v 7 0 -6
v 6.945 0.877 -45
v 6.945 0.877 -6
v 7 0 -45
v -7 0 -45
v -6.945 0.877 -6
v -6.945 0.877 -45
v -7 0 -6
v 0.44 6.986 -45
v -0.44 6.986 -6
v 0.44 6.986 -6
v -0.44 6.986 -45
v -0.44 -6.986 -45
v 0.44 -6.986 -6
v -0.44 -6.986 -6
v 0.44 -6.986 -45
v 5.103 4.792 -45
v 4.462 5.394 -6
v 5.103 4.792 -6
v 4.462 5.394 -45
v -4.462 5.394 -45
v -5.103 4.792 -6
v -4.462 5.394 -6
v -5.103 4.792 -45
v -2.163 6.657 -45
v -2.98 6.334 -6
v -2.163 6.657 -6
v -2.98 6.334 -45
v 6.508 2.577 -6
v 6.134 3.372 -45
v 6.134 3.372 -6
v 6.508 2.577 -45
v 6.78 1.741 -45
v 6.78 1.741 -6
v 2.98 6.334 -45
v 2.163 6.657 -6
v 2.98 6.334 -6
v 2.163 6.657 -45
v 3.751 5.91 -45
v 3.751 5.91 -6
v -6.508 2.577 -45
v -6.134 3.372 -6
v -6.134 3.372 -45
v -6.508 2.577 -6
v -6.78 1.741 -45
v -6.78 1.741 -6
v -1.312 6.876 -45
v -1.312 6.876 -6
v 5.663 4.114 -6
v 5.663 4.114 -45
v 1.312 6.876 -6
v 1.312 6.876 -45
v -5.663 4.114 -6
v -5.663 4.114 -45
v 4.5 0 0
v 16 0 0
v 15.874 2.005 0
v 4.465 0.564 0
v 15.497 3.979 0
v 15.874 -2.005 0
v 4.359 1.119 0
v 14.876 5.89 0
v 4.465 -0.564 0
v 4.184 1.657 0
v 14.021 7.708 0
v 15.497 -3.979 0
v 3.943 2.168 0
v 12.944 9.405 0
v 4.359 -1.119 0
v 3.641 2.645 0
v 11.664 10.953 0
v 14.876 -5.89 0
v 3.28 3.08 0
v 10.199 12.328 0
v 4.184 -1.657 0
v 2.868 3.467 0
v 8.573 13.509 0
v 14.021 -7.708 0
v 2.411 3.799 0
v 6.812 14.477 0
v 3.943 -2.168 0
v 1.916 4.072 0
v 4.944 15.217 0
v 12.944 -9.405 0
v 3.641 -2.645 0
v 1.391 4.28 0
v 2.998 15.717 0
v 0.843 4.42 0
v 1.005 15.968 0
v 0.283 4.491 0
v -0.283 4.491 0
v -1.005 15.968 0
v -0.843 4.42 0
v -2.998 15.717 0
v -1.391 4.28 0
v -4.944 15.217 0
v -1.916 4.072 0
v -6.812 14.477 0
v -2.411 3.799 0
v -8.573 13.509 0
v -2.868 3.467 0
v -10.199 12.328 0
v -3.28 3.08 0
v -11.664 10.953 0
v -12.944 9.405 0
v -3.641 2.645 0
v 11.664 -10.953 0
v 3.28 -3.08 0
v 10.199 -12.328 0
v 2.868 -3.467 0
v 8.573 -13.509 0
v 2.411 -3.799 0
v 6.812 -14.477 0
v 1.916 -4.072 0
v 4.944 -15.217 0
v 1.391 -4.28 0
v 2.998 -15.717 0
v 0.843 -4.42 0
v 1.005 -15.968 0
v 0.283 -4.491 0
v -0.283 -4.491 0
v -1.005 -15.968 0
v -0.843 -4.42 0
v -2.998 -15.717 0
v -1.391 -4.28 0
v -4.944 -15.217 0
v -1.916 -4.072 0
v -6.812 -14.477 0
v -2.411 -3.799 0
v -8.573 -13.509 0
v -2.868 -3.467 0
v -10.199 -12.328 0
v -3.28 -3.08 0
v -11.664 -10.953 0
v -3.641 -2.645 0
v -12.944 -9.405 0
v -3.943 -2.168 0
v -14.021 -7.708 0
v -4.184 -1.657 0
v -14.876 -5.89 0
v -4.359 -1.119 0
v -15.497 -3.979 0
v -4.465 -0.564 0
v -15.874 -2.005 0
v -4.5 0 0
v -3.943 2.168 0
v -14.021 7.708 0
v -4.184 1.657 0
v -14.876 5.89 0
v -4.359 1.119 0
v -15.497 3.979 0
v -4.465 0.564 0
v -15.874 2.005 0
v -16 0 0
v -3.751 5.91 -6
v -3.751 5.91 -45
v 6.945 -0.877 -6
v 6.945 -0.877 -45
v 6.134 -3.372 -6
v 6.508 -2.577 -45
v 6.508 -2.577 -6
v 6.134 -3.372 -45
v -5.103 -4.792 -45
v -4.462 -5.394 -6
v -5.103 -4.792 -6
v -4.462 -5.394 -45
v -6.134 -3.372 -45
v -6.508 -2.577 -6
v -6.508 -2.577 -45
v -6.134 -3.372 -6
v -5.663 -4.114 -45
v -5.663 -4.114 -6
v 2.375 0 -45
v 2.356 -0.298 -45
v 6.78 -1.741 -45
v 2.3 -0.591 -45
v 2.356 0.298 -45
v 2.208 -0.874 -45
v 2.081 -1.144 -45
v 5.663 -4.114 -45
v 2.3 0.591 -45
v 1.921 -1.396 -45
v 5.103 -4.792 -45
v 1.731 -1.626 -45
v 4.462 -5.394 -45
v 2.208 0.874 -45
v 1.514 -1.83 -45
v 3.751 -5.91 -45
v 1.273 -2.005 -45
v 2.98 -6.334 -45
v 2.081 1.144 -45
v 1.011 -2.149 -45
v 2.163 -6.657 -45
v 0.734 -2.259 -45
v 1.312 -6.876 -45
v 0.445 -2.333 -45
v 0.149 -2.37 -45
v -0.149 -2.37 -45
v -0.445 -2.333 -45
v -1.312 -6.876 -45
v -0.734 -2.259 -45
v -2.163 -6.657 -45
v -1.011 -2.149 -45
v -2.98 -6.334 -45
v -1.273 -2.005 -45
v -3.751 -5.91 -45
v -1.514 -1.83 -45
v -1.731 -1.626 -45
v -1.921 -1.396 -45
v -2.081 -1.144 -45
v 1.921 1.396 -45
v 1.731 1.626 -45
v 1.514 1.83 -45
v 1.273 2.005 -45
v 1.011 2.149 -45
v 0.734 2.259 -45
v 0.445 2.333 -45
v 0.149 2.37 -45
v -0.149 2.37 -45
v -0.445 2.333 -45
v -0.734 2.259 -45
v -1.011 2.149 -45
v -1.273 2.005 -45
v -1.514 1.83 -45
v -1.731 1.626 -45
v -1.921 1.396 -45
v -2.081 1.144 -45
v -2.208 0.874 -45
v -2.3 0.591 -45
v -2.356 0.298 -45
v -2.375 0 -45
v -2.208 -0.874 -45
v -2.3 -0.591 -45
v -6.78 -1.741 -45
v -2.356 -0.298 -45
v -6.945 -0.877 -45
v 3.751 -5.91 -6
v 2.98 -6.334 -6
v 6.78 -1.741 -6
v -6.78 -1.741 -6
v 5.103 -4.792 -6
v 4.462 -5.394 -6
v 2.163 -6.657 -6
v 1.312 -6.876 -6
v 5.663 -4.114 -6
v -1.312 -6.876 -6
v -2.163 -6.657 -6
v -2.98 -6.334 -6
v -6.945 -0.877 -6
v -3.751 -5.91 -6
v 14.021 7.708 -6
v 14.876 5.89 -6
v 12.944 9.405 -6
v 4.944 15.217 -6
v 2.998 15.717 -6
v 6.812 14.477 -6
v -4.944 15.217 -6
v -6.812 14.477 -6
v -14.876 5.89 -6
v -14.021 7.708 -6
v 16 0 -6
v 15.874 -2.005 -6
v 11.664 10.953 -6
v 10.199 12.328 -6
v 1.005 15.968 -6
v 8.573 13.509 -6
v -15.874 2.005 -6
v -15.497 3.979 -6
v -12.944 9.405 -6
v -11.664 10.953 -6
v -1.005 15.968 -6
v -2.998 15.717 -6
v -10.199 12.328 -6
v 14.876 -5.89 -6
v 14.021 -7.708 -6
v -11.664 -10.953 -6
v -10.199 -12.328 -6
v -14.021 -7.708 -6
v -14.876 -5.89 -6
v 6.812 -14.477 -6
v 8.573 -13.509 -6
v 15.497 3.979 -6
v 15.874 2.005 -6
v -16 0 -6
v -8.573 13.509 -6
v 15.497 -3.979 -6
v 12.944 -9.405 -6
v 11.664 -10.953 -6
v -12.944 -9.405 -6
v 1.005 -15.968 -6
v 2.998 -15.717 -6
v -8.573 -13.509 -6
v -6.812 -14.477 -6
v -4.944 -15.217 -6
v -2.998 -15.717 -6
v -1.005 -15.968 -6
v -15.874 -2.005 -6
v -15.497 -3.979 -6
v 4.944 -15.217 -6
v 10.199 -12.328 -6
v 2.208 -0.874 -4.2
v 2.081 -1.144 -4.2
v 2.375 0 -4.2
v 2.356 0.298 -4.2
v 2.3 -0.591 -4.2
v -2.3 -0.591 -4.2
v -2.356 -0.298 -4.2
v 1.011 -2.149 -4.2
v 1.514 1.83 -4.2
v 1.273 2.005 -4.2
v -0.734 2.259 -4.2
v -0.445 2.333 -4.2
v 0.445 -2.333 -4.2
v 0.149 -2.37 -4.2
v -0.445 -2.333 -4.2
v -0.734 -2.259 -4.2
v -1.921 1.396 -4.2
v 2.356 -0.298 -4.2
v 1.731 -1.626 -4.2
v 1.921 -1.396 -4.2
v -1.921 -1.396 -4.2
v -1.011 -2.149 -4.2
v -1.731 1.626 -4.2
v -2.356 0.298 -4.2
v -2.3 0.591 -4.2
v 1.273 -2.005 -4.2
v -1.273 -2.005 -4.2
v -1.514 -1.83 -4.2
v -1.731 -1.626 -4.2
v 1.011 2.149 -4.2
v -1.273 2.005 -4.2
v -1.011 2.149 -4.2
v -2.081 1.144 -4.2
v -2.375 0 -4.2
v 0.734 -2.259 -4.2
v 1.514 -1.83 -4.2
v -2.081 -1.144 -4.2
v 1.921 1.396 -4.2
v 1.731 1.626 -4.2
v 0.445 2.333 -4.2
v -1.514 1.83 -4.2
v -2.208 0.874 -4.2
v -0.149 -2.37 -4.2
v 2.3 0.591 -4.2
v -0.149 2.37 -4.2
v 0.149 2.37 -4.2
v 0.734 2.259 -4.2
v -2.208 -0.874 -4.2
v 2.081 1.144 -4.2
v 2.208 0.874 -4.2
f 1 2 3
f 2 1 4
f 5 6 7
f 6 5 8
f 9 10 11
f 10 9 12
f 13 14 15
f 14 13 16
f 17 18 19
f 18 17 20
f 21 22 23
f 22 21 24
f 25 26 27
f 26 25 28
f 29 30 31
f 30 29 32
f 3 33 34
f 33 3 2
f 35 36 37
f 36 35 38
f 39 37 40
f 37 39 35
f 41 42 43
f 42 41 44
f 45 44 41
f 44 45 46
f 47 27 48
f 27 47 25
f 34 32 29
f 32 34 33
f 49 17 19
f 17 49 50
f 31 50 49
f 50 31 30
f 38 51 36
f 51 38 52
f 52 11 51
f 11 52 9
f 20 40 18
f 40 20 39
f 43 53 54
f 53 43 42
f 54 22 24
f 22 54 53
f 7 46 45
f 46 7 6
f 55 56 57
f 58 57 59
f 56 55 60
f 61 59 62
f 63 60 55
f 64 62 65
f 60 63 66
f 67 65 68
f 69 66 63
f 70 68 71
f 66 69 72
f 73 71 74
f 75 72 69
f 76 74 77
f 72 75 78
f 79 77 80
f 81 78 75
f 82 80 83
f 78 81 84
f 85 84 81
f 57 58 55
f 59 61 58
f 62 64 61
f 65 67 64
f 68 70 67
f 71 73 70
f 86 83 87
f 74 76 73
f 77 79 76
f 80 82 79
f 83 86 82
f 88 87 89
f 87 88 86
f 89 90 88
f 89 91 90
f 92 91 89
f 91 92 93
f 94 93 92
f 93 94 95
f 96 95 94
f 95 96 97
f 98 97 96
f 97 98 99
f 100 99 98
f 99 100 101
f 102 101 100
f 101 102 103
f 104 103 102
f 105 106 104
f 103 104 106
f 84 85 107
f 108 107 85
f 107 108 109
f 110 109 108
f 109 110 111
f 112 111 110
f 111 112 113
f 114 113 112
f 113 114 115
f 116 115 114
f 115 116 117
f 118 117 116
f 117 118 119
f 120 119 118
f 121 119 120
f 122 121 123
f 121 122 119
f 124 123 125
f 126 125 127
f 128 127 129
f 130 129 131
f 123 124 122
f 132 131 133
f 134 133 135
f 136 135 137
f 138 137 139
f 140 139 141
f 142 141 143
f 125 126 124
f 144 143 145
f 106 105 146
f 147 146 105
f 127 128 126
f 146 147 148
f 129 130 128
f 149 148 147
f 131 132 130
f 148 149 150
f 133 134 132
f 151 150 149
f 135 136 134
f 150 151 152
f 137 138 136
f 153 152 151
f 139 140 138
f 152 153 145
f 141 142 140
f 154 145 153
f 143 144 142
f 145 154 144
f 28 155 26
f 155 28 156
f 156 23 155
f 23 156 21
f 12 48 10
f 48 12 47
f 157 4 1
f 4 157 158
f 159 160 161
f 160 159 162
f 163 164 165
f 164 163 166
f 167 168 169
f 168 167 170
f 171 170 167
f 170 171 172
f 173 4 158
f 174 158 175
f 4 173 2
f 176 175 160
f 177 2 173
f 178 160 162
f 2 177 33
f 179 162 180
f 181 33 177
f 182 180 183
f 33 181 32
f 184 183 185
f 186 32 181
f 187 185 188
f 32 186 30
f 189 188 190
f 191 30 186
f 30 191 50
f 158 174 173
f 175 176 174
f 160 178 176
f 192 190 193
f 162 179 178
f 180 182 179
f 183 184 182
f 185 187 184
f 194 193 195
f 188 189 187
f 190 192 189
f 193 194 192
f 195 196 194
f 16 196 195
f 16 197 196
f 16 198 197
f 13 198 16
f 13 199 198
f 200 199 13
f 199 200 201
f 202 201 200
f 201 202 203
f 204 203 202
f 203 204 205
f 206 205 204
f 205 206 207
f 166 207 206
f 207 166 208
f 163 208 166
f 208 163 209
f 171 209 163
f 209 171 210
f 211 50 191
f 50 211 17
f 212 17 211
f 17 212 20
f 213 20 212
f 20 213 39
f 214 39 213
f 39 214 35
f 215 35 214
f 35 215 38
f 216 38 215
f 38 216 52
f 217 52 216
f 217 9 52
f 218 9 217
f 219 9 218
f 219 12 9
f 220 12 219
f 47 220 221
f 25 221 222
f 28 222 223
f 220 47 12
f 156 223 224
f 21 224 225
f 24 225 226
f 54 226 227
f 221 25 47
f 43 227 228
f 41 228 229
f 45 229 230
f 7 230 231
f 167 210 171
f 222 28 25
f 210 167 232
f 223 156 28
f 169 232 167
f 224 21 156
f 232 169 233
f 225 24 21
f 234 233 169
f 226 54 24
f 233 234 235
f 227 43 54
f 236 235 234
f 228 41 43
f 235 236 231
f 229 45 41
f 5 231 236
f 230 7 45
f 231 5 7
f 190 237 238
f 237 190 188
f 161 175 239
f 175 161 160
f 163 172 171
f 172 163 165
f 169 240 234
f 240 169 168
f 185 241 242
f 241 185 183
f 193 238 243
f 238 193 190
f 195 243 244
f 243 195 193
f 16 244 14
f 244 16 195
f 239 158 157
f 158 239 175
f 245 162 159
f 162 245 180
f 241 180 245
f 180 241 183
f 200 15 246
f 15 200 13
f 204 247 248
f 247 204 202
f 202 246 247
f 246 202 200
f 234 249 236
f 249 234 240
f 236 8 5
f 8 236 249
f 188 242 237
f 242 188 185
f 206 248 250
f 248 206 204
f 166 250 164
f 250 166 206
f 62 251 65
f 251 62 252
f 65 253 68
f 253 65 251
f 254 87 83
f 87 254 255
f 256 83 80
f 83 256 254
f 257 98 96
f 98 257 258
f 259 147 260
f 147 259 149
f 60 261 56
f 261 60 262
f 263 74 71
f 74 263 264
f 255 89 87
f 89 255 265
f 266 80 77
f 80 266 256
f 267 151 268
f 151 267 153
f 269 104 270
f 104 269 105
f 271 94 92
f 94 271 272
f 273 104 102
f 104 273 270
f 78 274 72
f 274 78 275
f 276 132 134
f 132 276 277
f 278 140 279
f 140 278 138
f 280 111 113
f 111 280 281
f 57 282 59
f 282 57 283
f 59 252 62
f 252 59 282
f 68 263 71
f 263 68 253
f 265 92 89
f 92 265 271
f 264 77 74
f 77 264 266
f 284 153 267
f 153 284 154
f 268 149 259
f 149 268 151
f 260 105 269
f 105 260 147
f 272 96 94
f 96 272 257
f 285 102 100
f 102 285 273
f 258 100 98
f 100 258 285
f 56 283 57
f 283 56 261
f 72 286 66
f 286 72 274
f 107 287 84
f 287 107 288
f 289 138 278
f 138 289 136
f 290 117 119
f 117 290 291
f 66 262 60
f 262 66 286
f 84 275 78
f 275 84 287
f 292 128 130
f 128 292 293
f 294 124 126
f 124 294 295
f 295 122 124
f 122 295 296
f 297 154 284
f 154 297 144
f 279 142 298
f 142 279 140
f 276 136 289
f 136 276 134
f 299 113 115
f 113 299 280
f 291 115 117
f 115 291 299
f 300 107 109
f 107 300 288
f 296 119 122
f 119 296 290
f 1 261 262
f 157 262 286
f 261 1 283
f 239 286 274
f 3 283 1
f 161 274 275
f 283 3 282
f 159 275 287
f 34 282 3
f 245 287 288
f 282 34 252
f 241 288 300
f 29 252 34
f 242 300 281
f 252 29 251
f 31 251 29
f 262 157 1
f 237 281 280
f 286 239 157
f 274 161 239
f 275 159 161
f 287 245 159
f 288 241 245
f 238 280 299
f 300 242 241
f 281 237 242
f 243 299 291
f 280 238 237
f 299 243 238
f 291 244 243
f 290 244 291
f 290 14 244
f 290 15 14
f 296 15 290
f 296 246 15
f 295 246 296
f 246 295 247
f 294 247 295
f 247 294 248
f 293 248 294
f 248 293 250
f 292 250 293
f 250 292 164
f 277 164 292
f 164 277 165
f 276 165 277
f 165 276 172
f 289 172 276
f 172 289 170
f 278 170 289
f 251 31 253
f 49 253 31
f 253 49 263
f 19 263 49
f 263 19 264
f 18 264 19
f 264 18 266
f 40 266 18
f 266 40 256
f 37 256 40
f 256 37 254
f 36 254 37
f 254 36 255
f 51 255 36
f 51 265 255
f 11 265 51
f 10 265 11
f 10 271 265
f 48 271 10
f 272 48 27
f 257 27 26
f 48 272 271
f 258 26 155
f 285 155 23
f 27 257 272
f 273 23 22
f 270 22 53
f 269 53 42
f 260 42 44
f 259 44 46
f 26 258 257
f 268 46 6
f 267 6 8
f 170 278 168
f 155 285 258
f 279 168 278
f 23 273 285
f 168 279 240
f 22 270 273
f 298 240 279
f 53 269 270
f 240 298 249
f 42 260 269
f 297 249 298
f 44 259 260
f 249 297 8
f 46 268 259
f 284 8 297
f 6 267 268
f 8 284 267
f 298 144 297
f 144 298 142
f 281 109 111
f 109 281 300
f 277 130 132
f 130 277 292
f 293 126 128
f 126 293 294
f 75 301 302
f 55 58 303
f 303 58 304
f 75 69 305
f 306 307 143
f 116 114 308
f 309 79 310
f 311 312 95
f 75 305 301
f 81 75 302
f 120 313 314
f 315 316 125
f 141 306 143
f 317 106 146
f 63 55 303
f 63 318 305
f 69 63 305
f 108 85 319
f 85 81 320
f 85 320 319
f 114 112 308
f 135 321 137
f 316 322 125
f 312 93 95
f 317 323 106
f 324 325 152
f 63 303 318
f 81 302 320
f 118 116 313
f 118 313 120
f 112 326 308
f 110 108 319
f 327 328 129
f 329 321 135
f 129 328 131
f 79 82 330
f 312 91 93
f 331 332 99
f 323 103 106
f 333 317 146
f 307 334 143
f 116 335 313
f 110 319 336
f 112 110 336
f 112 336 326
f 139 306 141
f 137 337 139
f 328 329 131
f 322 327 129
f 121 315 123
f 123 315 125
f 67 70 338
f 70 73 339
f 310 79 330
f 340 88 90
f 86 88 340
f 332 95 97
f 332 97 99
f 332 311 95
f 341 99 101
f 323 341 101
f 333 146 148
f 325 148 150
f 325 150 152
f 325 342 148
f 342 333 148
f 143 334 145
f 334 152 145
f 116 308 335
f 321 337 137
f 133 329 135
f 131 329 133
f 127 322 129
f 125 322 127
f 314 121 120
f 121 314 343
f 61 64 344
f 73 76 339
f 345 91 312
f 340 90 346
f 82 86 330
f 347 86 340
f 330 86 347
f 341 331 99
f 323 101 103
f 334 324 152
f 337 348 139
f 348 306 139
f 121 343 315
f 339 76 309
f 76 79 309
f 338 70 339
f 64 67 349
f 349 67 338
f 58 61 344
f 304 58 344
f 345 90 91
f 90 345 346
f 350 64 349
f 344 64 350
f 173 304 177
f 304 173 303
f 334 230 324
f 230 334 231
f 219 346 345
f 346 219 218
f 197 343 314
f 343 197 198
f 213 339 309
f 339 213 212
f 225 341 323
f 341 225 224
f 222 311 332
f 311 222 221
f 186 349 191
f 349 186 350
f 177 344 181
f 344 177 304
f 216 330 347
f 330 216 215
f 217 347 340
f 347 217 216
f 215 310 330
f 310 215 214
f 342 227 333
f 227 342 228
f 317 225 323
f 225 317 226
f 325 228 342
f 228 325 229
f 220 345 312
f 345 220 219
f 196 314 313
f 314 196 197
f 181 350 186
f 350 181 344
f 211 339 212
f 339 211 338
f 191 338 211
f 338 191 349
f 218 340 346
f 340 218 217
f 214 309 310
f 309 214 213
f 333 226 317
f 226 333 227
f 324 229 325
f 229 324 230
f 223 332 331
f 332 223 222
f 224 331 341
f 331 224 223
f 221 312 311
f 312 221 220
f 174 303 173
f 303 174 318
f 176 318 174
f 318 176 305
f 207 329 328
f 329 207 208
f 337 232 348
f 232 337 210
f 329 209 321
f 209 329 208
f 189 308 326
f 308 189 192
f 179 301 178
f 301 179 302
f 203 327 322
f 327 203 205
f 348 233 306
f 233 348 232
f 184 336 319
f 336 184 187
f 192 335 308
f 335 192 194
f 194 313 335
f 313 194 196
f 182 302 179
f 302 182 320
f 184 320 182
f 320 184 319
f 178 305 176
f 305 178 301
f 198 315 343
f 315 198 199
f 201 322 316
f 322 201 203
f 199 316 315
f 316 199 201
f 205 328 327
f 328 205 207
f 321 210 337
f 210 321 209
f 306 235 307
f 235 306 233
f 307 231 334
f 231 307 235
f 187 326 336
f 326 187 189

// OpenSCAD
$fn = 50;


difference() {
	union() {
		translate(v = [0, 0, -45.0000000000]) {
			cylinder(h = 45, r = 7.0000000000);
		}
		translate(v = [0, 0, -6.0000000000]) {
			cylinder(h = 6, r = 16.0000000000);
		}
	}
	union() {
		translate(v = [0, 0, 0]) {
			rotate(a = [0, 0, 0]) {
				difference() {
					union() {
						#translate(v = [0, 0, -45.0000000000]) {
							cylinder(h = 45, r = 2.2500000000);
						}
						#translate(v = [0, 0, -4.2000000000]) {
							cylinder(h = 4.2000000000, r1 = 2.3750000000, r2 = 4.5000000000);
						}
						#translate(v = [0, 0, -45.0000000000]) {
							cylinder(h = 45, r = 2.3750000000);
						}
						#translate(v = [0, 0, -45.0000000000]) {
							cylinder(h = 45, r = 2.2500000000);
						}
					}
					union();
				}
			}
		}
	}
}
